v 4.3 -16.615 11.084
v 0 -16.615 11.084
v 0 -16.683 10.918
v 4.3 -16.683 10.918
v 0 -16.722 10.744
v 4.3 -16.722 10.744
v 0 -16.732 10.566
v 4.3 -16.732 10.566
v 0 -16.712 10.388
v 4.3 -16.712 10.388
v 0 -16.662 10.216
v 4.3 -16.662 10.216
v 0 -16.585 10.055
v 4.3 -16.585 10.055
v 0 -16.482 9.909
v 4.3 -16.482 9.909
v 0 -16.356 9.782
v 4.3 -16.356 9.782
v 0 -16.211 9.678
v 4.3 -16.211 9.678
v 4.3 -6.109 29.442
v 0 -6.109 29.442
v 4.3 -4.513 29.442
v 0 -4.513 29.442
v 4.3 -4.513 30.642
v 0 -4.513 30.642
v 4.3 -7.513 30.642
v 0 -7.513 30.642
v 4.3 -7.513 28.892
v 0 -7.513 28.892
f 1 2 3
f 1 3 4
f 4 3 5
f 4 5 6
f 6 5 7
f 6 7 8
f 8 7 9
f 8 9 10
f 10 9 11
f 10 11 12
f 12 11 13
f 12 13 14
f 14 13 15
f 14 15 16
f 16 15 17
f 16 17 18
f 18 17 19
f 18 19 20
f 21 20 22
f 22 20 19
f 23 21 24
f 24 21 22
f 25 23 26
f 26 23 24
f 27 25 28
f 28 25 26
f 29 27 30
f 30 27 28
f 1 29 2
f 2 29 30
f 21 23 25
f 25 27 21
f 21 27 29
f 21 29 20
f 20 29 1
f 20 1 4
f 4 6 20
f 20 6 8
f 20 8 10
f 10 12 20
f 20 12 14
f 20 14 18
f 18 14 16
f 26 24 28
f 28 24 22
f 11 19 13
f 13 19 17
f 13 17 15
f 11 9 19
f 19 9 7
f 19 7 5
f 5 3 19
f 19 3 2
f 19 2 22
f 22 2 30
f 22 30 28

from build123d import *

# Parameters (mm, degrees)
BOSS_EXTRUDE1_DEPTH = 4.3


with BuildPart() as part:
    # Sketch1 → Boss-Extrude1 (new body)
    with BuildSketch(Plane(origin=(0, 0, 0), x_dir=(0, 0, -1), z_dir=(1, 0, 0))):
        with BuildLine():
            ThreePointArc((-11.083862383, -16.615210797), (-10.301073063, -16.690701101), (-9.678172689, -16.210645864))
            Line((-9.678172689, -16.210645864), (-29.442415971, -6.108537965))
            Line((-29.442415971, -6.108537965), (-29.442415971, -4.512715584))
            Line((-29.442415971, -4.512715584), (-30.642415971, -4.512715584))
            Line((-30.642415971, -4.512715584), (-30.642415971, -7.512715584))
            Line((-30.642415971, -7.512715584), (-28.892415971, -7.512715584))
            Line((-28.892415971, -7.512715584), (-11.083862383, -16.615210797))
        make_face()
    extrude(amount=BOSS_EXTRUDE1_DEPTH)


solid = part.part
